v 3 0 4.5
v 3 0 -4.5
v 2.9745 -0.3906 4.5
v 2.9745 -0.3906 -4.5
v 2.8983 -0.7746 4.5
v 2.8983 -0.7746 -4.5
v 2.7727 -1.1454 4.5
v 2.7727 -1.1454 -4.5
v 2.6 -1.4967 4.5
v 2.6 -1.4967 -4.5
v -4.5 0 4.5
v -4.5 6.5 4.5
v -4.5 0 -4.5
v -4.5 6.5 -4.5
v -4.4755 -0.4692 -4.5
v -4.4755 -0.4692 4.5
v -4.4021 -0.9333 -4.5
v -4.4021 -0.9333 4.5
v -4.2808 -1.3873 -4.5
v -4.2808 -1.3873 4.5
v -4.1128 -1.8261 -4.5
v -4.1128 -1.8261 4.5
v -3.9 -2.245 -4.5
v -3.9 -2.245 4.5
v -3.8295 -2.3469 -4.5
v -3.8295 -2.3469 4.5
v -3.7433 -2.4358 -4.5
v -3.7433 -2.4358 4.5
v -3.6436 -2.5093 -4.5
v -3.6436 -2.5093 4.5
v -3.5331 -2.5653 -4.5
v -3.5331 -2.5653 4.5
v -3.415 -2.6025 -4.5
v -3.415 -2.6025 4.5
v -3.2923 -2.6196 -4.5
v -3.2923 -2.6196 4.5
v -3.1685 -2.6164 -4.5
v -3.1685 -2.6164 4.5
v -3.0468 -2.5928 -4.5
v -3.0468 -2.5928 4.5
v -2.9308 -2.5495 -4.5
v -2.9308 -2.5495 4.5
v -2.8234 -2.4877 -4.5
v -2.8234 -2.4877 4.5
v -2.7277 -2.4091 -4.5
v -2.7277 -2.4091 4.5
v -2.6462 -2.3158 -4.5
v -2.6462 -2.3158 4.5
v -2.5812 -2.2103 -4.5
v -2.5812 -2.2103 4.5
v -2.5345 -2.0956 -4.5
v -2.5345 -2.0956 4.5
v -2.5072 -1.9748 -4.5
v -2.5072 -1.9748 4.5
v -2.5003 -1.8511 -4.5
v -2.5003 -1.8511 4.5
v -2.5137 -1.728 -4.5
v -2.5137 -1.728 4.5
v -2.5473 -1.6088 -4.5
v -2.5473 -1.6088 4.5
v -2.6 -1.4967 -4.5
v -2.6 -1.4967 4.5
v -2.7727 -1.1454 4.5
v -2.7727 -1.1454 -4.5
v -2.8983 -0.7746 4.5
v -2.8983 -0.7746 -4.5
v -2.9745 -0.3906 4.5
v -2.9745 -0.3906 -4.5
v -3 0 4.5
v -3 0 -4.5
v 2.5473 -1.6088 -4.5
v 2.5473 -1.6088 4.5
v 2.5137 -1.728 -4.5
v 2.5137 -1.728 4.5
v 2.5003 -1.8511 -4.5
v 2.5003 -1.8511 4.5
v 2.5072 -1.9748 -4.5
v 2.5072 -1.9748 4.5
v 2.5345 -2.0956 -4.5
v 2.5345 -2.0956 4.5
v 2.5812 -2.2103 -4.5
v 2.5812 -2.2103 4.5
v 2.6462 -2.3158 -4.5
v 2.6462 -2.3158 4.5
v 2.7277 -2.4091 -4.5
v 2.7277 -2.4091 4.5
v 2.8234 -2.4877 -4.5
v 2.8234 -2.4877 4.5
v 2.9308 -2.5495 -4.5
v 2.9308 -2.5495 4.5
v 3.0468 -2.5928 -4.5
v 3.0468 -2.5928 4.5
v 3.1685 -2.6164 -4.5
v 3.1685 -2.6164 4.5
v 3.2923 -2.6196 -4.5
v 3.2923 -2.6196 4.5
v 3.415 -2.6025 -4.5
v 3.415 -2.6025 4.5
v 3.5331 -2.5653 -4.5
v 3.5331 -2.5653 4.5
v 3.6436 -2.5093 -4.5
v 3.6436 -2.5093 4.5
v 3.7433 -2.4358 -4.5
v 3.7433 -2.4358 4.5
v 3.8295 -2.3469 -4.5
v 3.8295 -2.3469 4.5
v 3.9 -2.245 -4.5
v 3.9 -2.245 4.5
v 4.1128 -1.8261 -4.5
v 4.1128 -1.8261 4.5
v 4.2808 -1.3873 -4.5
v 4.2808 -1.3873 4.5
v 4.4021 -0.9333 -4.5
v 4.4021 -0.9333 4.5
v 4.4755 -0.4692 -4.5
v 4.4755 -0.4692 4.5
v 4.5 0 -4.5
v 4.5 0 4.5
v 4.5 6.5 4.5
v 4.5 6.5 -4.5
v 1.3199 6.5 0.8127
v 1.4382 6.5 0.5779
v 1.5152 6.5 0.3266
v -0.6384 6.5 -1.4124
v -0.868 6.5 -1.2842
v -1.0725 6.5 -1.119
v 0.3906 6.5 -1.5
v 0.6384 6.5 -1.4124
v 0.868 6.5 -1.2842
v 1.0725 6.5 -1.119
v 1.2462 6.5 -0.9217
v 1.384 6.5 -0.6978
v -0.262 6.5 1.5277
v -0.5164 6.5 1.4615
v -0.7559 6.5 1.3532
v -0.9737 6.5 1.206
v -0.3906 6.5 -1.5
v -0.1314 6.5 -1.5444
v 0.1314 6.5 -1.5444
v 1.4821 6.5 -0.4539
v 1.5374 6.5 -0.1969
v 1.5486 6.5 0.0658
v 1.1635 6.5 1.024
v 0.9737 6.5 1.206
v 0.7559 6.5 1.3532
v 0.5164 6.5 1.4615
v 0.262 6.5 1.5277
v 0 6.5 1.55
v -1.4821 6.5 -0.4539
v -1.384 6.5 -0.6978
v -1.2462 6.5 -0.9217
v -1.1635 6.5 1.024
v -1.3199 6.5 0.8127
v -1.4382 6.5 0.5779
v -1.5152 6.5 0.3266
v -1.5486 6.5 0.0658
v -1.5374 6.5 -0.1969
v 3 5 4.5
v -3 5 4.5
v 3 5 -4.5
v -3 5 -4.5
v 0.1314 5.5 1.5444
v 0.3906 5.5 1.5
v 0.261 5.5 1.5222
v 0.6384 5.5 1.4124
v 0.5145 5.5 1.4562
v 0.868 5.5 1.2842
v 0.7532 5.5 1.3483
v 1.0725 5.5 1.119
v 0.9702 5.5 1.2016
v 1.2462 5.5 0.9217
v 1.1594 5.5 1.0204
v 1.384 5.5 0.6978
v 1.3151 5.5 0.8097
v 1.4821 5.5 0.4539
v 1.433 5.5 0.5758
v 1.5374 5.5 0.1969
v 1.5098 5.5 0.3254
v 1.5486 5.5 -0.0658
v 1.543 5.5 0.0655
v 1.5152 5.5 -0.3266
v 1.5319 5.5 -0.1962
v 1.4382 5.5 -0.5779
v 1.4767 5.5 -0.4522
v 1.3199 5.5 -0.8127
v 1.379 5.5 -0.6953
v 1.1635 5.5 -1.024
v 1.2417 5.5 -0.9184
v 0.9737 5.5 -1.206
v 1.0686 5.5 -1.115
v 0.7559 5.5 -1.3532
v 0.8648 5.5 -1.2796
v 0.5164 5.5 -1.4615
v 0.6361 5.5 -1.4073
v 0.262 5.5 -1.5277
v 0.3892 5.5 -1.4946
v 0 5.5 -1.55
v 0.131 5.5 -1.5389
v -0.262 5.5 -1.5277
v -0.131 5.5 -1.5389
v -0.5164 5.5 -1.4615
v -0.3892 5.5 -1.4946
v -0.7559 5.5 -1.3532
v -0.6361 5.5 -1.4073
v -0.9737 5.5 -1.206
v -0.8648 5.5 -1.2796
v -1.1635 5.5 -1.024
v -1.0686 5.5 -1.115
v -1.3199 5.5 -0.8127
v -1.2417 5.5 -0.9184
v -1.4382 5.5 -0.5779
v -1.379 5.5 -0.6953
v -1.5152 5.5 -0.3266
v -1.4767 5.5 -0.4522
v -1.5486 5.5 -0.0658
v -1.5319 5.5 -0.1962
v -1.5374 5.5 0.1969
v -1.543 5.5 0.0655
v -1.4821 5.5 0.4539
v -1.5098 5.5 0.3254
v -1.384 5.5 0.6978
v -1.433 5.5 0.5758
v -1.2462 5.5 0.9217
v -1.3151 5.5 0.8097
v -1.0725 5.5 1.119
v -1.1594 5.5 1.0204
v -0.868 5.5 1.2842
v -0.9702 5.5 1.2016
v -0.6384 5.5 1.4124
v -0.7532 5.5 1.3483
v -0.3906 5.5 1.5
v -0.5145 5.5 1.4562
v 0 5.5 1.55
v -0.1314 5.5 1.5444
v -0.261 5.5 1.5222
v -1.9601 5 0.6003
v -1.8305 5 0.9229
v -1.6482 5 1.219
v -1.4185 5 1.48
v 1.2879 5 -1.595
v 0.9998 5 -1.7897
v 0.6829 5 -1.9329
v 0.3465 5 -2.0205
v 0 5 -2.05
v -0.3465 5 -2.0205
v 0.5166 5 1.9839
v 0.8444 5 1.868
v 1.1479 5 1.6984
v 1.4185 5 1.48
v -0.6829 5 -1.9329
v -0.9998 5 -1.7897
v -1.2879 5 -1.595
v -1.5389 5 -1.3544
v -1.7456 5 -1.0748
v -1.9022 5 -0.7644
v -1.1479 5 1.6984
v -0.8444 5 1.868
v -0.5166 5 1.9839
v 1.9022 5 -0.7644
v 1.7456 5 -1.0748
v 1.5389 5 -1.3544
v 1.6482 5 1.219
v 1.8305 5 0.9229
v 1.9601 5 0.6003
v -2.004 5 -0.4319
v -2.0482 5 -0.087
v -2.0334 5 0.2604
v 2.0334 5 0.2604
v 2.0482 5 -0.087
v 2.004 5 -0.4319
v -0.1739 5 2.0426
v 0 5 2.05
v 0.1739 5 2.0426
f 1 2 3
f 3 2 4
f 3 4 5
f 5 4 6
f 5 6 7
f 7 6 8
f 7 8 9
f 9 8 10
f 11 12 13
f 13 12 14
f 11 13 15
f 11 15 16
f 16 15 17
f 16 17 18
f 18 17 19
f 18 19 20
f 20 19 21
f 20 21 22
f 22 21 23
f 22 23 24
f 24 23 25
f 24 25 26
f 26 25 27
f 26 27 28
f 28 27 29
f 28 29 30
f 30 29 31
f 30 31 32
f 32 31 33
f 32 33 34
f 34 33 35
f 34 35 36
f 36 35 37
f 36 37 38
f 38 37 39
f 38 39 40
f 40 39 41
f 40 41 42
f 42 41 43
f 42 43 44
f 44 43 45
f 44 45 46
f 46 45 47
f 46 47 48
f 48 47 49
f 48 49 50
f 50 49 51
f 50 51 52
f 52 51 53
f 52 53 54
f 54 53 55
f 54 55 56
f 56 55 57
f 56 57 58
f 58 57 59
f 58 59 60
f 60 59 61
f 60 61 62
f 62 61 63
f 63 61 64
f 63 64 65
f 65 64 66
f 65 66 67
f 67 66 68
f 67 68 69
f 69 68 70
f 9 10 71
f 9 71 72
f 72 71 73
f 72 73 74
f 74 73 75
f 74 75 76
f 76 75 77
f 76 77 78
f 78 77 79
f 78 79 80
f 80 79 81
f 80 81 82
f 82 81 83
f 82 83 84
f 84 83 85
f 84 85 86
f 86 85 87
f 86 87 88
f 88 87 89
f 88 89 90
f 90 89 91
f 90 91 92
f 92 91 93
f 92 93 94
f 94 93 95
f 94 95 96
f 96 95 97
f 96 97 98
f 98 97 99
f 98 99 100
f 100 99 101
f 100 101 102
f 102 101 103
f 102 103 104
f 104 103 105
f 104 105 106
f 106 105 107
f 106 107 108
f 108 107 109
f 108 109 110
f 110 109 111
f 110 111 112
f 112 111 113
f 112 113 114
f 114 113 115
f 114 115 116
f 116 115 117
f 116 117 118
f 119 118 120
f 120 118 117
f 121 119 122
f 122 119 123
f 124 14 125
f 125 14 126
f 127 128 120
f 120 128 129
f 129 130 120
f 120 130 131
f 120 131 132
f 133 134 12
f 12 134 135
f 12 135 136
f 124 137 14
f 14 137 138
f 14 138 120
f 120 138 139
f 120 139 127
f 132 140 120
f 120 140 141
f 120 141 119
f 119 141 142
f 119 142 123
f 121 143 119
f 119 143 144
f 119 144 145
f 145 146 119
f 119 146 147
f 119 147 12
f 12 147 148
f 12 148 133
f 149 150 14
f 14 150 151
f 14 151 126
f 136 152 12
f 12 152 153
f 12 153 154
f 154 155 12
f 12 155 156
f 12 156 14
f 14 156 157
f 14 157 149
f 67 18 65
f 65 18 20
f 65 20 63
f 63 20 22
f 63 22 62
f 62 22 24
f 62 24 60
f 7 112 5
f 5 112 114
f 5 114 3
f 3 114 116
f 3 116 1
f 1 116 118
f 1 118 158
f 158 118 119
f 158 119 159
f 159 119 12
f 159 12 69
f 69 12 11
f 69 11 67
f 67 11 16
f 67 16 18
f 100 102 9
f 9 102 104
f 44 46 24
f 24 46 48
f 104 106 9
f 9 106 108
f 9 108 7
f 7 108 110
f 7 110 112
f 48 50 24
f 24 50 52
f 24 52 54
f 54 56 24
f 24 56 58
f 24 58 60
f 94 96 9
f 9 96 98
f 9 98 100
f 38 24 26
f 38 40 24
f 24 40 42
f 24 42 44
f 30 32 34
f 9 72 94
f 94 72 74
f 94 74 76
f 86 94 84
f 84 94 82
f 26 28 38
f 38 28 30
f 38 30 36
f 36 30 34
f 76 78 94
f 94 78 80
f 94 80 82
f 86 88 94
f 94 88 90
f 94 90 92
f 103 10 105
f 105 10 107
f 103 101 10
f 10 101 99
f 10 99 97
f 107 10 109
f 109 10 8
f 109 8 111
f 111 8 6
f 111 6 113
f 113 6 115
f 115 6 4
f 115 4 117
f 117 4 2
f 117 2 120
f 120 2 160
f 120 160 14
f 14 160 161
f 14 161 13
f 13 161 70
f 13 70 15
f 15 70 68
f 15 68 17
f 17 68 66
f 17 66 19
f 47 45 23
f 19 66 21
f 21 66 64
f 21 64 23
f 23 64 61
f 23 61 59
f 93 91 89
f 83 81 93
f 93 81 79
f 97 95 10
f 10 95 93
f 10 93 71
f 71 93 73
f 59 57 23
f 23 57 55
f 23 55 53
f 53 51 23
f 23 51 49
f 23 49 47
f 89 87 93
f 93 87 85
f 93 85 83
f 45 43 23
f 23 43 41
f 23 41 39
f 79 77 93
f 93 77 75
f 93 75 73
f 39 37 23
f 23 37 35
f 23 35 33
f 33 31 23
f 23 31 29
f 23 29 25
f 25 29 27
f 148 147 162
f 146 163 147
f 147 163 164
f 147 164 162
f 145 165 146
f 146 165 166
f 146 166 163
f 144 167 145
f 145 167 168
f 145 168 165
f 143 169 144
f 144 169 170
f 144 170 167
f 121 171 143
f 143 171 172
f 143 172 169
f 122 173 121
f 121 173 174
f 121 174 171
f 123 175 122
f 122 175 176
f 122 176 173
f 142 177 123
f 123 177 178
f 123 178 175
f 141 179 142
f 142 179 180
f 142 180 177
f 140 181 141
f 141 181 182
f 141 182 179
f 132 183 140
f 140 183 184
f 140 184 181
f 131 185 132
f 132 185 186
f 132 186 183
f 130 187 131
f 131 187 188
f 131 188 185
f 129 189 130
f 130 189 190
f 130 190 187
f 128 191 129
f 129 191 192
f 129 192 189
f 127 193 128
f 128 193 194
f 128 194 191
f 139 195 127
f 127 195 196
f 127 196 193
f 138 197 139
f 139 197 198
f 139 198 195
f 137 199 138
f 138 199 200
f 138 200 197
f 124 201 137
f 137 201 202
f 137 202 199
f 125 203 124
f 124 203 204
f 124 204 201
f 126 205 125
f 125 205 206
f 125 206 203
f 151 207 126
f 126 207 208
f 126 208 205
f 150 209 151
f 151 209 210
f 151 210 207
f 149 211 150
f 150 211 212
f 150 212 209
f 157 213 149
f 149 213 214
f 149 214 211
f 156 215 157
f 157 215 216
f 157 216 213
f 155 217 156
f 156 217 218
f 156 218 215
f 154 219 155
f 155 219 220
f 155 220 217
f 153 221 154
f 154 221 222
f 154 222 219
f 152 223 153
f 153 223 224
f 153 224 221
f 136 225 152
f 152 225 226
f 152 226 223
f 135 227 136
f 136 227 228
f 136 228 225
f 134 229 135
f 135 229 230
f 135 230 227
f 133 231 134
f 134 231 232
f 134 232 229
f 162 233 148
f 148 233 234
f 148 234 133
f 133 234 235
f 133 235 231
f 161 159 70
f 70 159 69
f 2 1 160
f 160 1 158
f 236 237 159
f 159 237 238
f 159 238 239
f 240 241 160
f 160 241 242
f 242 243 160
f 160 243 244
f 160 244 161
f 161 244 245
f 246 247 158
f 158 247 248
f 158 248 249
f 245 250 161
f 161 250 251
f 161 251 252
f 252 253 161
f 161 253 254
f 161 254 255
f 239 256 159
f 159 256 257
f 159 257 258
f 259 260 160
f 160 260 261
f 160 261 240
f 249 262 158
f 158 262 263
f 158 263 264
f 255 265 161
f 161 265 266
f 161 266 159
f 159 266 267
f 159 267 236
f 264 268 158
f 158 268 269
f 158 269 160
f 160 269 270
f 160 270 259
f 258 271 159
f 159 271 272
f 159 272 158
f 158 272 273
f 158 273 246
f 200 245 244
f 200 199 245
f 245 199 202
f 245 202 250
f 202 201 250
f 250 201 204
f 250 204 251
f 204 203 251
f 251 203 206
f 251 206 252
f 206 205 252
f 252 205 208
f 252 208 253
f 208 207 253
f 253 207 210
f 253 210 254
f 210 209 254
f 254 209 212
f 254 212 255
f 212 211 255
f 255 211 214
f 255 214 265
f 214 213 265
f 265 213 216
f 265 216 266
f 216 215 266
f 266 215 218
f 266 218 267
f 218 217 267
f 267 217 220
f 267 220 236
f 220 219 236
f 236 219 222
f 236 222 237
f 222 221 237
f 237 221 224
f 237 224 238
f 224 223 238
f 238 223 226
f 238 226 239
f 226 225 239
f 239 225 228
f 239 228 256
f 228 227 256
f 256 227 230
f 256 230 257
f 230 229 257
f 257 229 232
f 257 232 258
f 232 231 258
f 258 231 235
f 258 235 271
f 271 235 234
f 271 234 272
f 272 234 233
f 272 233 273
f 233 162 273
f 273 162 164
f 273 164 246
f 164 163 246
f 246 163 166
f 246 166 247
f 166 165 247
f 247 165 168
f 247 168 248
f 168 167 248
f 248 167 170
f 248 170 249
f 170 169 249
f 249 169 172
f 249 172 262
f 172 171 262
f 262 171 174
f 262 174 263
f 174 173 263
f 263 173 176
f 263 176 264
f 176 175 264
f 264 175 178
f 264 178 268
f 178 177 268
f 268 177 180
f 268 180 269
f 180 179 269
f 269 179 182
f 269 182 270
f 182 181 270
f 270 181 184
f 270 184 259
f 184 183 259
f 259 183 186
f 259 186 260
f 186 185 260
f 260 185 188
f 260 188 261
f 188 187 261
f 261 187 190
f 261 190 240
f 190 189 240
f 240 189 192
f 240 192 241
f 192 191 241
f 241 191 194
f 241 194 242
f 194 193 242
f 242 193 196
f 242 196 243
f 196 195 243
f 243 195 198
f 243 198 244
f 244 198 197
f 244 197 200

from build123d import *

# Parameters (mm, degrees)
AUFSATZ_LINEAR_AUSTRAGEN1_DEPTH      = 4.5
SCHNITT_LINEAR_AUSTRAGEN1_REACH      = 13.122
SCHNITT_LINEAR_AUSTRAGEN1_END_RADIUS = 3
SKIZZE3_R                            = 1.55
SCHNITT_LINEAR_AUSTRAGEN2_DEPTH      = 12.97914868
SCHNITT_LINEAR_AUSTRAGEN2_DEPTH_BACK = 12.97914868
SKIZZE4_W                            = 6
SKIZZE4_H                            = 5
FASE1_SIZE                           = 0.5


with BuildPart() as part:
    # Skizze1 → Aufsatz-Linear austragen1 (new, symmetric)
    with BuildSketch(Plane.XY):
        with BuildLine():
            Line((-4.5, 6.5), (4.5, 6.5))
            Line((4.5, 6.5), (4.5, 0))
            ThreePointArc((4.5, 0), (4.347413024, -1.161895004), (3.9, -2.244994432))
            ThreePointArc((3.9, -2.244994432), (2.875834261, -2.520828693), (2.6, -1.496662955))
            ThreePointArc((2.6, -1.496662955), (0, 3), (-2.6, -1.496662955))
            ThreePointArc((-2.6, -1.496662955), (-2.875834261, -2.520828693), (-3.9, -2.244994432))
            ThreePointArc((-3.9, -2.244994432), (-4.347413024, -1.161895004), (-4.5, 0))
            Line((-4.5, 0), (-4.5, 6.5))
        make_face()
    extrude(amount=AUFSATZ_LINEAR_AUSTRAGEN1_DEPTH, both=True)

    # Schnitt-Linear austragen1: up to this cylinder (the profile starts outside it)
    schnitt_linear_austragen1_end = Plane(origin=(0, 0, 0), z_dir=(0, 0, -1)) * Cylinder(SCHNITT_LINEAR_AUSTRAGEN1_END_RADIUS, 33.244, mode=Mode.PRIVATE)
    # Skizze3 → Schnitt-Linear austragen1 (cut, up to the surface)
    with BuildSketch(Plane(origin=(0, 6.5, 0), x_dir=(1, 0, 0), z_dir=(0, 1, 0)), mode=Mode.PRIVATE) as schnitt_linear_austragen1_sk1:
        with Locations(Location((0, 0, 0), (0, 0, 270))):
            Circle(SKIZZE3_R)
    schnitt_linear_austragen1_tool1 = extrude(schnitt_linear_austragen1_sk1.sketch, amount=-SCHNITT_LINEAR_AUSTRAGEN1_REACH, mode=Mode.PRIVATE) - schnitt_linear_austragen1_end
    add(schnitt_linear_austragen1_tool1.solids().sort_by_distance((0, 6.5, 0))[0], mode=Mode.SUBTRACT)

    # Skizze4 → Schnitt-Linear austragen2 (cut, two sides: drawn at the far end of the back side and taken through both)
    with BuildSketch(Plane.XY.offset(4.5).offset(-SCHNITT_LINEAR_AUSTRAGEN2_DEPTH_BACK)):
        with Locations((0, 2.5)):
            Rectangle(SKIZZE4_W, SKIZZE4_H)
    extrude(amount=SCHNITT_LINEAR_AUSTRAGEN2_DEPTH + SCHNITT_LINEAR_AUSTRAGEN2_DEPTH_BACK, mode=Mode.SUBTRACT)

    # Fase1
    fase1_edges = [part.edges().sort_by_distance(p)[0] for p in [
        (0, 5, -1.55),
    ]]
    chamfer(fase1_edges, length=FASE1_SIZE)


solid = part.part
